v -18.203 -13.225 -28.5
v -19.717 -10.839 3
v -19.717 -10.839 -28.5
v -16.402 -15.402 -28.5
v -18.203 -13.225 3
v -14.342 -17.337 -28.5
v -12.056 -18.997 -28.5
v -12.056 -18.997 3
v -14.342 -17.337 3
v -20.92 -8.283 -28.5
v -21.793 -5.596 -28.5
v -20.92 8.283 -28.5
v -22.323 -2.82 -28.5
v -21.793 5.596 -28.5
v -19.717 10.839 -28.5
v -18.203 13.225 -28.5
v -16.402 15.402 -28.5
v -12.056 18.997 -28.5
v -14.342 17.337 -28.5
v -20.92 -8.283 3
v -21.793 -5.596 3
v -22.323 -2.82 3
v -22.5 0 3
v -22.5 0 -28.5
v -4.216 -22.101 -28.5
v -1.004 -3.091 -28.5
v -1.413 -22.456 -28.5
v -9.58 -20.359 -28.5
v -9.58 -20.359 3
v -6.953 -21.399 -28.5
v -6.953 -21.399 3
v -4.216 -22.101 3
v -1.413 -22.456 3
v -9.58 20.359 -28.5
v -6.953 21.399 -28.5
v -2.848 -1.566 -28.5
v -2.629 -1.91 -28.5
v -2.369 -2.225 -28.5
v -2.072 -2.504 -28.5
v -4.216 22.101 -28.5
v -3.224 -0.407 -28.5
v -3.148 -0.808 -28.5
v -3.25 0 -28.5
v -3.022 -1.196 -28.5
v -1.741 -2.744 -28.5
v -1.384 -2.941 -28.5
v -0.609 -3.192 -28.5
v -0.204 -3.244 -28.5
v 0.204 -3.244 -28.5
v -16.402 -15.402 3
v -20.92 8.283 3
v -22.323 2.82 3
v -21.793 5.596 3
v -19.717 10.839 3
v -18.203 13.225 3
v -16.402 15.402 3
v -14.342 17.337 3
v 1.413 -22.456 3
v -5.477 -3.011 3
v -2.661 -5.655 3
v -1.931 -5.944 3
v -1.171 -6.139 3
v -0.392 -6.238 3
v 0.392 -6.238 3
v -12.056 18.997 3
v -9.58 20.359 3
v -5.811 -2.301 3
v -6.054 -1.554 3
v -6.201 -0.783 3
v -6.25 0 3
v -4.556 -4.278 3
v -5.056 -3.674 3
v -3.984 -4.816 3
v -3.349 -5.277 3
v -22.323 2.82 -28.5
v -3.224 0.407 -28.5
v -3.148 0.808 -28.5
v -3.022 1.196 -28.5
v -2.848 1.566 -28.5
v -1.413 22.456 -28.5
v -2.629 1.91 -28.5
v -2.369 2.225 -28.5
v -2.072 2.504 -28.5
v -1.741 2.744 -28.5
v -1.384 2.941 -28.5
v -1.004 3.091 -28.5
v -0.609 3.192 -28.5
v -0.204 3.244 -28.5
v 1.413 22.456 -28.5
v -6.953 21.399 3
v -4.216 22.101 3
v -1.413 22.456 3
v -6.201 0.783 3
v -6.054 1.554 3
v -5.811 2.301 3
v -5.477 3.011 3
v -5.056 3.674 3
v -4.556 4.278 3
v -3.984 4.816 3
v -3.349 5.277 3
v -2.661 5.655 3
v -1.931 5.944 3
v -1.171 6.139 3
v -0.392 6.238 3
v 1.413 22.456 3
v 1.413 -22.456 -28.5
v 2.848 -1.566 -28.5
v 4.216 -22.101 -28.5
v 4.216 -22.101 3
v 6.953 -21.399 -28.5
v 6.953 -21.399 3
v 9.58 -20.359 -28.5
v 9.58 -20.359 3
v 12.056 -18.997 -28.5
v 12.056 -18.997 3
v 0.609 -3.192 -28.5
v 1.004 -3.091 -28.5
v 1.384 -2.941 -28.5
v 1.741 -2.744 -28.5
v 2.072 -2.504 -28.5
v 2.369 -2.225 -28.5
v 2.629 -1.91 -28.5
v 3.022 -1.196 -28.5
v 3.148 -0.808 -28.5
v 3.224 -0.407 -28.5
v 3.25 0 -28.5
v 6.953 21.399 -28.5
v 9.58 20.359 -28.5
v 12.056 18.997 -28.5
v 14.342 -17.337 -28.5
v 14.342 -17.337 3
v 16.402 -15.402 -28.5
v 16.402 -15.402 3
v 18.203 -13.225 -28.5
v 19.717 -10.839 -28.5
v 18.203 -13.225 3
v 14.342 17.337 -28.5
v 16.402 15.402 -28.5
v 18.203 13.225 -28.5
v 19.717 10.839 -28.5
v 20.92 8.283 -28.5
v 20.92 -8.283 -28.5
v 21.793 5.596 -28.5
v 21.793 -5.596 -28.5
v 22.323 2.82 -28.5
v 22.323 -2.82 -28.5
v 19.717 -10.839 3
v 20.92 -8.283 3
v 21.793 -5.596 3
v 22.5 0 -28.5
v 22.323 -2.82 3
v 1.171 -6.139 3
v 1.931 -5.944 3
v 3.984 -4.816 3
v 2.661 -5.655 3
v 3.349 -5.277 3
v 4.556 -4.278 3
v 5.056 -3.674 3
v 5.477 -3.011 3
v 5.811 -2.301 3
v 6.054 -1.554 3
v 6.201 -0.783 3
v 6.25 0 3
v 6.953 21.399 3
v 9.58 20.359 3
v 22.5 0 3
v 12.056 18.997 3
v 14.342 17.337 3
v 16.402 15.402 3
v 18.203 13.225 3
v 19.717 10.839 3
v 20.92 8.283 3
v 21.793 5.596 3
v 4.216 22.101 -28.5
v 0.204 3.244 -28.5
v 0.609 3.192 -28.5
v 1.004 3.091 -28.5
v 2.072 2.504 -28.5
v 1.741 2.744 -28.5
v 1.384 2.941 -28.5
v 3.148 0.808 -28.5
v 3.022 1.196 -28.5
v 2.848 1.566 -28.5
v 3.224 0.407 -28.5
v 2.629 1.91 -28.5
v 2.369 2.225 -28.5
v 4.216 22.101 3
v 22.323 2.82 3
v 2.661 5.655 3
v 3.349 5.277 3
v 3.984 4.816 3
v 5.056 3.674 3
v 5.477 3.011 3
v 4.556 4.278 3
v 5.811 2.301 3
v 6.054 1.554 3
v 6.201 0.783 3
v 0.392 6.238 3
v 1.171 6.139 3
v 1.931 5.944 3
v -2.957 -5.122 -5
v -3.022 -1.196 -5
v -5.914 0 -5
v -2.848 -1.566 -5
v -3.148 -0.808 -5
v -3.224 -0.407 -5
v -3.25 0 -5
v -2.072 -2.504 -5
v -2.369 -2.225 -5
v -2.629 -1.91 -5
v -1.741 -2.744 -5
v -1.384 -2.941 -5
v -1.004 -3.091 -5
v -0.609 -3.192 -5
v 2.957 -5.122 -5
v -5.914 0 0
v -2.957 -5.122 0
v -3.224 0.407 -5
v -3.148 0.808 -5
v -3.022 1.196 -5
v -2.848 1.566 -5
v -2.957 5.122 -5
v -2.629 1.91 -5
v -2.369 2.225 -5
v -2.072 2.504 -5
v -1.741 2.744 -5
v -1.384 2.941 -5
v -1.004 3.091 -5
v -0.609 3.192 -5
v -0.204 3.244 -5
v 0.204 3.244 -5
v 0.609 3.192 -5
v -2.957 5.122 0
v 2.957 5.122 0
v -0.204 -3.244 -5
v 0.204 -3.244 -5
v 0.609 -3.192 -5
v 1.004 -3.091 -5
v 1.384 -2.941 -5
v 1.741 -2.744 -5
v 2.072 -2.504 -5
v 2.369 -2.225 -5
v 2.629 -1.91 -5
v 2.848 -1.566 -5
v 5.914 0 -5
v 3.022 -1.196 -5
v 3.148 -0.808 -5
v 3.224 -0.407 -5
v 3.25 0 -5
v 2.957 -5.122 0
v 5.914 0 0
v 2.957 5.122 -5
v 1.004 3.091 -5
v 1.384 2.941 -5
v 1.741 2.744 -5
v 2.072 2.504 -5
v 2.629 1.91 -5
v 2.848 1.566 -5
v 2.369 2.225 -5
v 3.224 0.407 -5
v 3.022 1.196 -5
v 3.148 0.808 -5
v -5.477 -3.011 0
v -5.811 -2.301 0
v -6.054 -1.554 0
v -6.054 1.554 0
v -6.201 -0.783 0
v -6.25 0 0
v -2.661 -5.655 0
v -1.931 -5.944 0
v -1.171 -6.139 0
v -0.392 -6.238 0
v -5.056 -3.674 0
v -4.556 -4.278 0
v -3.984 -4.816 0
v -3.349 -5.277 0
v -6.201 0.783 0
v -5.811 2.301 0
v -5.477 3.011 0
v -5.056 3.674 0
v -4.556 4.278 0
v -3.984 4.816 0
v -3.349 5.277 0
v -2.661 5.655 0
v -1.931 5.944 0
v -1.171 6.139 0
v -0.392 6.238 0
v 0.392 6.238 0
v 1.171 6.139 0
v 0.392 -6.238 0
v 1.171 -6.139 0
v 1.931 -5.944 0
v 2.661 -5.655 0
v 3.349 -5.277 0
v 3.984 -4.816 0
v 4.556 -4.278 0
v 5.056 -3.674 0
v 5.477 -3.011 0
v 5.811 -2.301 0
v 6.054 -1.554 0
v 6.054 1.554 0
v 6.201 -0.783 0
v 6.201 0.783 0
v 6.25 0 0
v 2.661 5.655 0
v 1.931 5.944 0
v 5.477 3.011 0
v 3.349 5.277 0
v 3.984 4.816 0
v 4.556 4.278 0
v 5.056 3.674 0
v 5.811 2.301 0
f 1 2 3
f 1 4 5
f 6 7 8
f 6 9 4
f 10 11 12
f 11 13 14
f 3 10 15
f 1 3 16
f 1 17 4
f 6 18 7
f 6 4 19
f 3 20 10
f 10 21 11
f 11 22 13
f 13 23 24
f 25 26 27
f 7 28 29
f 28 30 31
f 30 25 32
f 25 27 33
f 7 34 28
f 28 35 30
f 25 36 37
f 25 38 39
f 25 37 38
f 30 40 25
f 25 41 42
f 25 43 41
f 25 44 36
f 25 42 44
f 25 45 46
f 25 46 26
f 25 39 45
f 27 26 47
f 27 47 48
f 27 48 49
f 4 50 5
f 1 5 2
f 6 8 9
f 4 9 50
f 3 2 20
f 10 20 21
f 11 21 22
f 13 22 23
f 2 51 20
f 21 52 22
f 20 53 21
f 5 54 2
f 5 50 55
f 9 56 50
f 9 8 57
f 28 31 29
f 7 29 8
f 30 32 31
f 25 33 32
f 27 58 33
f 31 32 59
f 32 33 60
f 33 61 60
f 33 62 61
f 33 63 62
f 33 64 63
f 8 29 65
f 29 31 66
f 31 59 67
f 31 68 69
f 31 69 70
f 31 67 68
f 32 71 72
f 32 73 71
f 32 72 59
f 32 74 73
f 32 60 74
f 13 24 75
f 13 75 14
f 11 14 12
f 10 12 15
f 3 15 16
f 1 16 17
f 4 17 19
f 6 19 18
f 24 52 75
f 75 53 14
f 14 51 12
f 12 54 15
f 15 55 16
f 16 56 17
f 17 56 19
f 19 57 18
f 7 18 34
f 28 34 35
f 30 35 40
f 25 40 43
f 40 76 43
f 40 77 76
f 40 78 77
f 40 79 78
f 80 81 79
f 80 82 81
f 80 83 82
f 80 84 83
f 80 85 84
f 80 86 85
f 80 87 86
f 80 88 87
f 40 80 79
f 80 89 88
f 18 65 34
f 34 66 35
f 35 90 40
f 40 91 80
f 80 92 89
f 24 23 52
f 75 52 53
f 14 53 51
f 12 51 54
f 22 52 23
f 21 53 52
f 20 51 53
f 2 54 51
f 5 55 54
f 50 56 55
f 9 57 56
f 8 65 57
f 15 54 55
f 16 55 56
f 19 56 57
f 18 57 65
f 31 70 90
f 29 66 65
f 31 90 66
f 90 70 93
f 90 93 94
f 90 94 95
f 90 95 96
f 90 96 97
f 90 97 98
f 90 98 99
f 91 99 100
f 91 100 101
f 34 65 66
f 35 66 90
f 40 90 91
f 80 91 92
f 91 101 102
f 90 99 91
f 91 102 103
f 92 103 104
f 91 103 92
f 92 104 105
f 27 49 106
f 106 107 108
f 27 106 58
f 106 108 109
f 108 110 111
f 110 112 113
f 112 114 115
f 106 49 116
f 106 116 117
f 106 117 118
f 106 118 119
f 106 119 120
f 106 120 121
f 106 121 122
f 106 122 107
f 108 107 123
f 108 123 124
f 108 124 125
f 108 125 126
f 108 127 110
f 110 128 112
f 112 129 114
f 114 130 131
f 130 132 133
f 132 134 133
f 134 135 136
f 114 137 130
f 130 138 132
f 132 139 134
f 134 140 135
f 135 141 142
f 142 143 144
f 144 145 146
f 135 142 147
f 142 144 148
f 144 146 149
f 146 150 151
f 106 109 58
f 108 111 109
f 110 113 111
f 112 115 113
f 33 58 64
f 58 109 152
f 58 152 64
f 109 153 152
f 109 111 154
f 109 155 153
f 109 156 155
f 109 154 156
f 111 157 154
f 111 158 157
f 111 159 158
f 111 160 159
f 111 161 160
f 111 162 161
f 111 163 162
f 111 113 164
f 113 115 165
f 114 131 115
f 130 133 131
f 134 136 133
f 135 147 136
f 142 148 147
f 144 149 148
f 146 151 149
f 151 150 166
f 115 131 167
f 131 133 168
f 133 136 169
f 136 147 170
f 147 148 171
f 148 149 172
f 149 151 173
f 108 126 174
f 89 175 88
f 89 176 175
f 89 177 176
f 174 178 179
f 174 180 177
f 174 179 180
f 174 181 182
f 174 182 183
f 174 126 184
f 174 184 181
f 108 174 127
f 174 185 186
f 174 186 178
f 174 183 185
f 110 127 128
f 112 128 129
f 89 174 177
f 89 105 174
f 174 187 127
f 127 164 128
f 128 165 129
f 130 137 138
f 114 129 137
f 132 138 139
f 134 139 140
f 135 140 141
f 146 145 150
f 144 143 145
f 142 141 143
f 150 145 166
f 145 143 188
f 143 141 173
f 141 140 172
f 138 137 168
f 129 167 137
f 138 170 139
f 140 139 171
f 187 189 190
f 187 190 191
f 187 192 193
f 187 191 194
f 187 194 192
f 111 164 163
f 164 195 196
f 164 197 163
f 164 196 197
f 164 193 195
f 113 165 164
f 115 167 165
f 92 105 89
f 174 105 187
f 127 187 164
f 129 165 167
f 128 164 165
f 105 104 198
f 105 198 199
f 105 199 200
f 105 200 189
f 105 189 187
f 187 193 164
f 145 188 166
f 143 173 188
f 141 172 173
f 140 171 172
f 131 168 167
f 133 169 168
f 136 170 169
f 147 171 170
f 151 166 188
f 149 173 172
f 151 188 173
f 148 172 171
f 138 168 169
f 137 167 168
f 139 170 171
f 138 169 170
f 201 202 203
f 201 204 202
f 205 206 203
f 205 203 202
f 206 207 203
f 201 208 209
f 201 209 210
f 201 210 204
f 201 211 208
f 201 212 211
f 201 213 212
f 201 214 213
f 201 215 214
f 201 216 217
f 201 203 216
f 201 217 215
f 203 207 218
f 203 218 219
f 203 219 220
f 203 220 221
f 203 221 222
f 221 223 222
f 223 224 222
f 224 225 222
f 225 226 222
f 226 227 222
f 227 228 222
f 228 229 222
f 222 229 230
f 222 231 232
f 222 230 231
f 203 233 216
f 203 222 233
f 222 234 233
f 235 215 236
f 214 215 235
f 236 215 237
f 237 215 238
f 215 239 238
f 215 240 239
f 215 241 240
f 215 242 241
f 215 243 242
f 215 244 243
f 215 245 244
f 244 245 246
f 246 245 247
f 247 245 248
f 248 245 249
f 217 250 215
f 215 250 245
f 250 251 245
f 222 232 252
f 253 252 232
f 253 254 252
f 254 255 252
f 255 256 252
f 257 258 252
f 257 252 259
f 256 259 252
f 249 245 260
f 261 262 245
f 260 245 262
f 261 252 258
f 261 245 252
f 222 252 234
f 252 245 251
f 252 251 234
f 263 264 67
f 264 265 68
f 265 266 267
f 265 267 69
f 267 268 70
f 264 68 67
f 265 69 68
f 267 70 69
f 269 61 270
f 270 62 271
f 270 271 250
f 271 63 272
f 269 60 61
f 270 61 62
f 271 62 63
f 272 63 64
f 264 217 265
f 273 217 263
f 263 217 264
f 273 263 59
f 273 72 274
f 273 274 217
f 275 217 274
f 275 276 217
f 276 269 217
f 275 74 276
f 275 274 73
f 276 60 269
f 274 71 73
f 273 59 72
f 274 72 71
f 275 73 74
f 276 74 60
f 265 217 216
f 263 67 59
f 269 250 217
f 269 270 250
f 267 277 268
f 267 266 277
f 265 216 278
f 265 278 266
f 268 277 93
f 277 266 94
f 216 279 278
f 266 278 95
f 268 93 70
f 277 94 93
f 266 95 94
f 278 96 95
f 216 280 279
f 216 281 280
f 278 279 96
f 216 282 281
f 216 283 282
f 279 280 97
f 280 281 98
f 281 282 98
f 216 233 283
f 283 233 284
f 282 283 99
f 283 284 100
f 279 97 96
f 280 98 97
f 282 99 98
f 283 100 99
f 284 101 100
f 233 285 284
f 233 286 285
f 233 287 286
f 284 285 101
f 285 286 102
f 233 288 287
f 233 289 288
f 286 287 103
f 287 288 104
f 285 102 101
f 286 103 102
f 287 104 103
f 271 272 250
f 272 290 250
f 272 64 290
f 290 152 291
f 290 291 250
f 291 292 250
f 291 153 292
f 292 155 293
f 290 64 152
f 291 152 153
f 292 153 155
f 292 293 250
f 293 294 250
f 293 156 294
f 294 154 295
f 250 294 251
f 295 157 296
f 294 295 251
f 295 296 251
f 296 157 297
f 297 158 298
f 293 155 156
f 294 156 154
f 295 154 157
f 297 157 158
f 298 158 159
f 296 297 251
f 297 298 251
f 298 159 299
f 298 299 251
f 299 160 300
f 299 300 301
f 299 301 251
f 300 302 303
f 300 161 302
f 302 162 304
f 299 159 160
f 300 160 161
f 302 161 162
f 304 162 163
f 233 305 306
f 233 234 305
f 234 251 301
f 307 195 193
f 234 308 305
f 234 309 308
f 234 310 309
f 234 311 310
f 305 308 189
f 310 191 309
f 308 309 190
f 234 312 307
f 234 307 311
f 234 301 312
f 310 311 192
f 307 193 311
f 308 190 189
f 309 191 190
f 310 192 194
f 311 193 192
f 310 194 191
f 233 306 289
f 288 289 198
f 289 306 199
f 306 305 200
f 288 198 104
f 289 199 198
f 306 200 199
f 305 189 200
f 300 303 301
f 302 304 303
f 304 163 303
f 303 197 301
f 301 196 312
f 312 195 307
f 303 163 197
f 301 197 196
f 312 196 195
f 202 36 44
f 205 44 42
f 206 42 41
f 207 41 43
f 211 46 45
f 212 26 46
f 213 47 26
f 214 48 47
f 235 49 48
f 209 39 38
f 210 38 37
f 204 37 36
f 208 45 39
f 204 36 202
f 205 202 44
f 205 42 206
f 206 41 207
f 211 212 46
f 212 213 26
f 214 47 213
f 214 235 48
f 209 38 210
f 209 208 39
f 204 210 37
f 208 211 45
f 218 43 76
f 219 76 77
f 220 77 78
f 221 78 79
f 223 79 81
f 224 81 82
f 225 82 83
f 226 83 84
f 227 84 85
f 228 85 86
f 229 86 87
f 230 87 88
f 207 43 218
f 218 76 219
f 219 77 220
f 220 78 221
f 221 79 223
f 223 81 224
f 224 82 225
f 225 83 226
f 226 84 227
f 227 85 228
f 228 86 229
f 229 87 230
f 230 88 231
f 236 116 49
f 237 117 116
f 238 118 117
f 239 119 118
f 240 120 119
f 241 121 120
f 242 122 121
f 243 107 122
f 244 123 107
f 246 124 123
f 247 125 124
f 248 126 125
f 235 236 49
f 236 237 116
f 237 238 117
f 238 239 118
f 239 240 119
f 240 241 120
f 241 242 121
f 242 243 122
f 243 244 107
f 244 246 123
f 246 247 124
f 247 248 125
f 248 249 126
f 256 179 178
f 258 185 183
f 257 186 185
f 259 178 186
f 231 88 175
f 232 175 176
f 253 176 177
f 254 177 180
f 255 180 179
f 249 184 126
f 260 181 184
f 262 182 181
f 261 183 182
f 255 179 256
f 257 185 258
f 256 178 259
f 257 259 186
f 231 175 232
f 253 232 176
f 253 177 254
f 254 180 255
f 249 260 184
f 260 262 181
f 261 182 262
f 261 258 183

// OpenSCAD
$fn = 50;


difference() {
	union() {
		translate(v = [0, 0, -28.5000000000]) {
			cylinder(h = 31.5000000000, r = 22.5000000000);
		}
		#translate(v = [0, 0, -30.0000000000]) {
			cylinder(h = 30, r = 2.8750000000);
		}
	}
	union() {
		translate(v = [0, 0, 0]) {
			rotate(a = [0, 0, 0]) {
				difference() {
					union() {
						translate(v = [0, 0, -5]) {
							linear_extrude(height = 5) {
								polygon(points = [[5.9142500000, 0.0000000000], [2.9571250000, 5.1218907443], [-2.9571250000, 5.1218907443], [-5.9142500000, 0.0000000000], [-2.9571250000, -5.1218907443], [2.9571250000, -5.1218907443]]);
							}
						}
					}
					union();
				}
			}
		}
		#cylinder(h = 3, r = 6.2500000000);
		#translate(v = [0, 0, -100.0000000000]) {
			cylinder(h = 200, r = 3.2500000000);
		}
	}
}
